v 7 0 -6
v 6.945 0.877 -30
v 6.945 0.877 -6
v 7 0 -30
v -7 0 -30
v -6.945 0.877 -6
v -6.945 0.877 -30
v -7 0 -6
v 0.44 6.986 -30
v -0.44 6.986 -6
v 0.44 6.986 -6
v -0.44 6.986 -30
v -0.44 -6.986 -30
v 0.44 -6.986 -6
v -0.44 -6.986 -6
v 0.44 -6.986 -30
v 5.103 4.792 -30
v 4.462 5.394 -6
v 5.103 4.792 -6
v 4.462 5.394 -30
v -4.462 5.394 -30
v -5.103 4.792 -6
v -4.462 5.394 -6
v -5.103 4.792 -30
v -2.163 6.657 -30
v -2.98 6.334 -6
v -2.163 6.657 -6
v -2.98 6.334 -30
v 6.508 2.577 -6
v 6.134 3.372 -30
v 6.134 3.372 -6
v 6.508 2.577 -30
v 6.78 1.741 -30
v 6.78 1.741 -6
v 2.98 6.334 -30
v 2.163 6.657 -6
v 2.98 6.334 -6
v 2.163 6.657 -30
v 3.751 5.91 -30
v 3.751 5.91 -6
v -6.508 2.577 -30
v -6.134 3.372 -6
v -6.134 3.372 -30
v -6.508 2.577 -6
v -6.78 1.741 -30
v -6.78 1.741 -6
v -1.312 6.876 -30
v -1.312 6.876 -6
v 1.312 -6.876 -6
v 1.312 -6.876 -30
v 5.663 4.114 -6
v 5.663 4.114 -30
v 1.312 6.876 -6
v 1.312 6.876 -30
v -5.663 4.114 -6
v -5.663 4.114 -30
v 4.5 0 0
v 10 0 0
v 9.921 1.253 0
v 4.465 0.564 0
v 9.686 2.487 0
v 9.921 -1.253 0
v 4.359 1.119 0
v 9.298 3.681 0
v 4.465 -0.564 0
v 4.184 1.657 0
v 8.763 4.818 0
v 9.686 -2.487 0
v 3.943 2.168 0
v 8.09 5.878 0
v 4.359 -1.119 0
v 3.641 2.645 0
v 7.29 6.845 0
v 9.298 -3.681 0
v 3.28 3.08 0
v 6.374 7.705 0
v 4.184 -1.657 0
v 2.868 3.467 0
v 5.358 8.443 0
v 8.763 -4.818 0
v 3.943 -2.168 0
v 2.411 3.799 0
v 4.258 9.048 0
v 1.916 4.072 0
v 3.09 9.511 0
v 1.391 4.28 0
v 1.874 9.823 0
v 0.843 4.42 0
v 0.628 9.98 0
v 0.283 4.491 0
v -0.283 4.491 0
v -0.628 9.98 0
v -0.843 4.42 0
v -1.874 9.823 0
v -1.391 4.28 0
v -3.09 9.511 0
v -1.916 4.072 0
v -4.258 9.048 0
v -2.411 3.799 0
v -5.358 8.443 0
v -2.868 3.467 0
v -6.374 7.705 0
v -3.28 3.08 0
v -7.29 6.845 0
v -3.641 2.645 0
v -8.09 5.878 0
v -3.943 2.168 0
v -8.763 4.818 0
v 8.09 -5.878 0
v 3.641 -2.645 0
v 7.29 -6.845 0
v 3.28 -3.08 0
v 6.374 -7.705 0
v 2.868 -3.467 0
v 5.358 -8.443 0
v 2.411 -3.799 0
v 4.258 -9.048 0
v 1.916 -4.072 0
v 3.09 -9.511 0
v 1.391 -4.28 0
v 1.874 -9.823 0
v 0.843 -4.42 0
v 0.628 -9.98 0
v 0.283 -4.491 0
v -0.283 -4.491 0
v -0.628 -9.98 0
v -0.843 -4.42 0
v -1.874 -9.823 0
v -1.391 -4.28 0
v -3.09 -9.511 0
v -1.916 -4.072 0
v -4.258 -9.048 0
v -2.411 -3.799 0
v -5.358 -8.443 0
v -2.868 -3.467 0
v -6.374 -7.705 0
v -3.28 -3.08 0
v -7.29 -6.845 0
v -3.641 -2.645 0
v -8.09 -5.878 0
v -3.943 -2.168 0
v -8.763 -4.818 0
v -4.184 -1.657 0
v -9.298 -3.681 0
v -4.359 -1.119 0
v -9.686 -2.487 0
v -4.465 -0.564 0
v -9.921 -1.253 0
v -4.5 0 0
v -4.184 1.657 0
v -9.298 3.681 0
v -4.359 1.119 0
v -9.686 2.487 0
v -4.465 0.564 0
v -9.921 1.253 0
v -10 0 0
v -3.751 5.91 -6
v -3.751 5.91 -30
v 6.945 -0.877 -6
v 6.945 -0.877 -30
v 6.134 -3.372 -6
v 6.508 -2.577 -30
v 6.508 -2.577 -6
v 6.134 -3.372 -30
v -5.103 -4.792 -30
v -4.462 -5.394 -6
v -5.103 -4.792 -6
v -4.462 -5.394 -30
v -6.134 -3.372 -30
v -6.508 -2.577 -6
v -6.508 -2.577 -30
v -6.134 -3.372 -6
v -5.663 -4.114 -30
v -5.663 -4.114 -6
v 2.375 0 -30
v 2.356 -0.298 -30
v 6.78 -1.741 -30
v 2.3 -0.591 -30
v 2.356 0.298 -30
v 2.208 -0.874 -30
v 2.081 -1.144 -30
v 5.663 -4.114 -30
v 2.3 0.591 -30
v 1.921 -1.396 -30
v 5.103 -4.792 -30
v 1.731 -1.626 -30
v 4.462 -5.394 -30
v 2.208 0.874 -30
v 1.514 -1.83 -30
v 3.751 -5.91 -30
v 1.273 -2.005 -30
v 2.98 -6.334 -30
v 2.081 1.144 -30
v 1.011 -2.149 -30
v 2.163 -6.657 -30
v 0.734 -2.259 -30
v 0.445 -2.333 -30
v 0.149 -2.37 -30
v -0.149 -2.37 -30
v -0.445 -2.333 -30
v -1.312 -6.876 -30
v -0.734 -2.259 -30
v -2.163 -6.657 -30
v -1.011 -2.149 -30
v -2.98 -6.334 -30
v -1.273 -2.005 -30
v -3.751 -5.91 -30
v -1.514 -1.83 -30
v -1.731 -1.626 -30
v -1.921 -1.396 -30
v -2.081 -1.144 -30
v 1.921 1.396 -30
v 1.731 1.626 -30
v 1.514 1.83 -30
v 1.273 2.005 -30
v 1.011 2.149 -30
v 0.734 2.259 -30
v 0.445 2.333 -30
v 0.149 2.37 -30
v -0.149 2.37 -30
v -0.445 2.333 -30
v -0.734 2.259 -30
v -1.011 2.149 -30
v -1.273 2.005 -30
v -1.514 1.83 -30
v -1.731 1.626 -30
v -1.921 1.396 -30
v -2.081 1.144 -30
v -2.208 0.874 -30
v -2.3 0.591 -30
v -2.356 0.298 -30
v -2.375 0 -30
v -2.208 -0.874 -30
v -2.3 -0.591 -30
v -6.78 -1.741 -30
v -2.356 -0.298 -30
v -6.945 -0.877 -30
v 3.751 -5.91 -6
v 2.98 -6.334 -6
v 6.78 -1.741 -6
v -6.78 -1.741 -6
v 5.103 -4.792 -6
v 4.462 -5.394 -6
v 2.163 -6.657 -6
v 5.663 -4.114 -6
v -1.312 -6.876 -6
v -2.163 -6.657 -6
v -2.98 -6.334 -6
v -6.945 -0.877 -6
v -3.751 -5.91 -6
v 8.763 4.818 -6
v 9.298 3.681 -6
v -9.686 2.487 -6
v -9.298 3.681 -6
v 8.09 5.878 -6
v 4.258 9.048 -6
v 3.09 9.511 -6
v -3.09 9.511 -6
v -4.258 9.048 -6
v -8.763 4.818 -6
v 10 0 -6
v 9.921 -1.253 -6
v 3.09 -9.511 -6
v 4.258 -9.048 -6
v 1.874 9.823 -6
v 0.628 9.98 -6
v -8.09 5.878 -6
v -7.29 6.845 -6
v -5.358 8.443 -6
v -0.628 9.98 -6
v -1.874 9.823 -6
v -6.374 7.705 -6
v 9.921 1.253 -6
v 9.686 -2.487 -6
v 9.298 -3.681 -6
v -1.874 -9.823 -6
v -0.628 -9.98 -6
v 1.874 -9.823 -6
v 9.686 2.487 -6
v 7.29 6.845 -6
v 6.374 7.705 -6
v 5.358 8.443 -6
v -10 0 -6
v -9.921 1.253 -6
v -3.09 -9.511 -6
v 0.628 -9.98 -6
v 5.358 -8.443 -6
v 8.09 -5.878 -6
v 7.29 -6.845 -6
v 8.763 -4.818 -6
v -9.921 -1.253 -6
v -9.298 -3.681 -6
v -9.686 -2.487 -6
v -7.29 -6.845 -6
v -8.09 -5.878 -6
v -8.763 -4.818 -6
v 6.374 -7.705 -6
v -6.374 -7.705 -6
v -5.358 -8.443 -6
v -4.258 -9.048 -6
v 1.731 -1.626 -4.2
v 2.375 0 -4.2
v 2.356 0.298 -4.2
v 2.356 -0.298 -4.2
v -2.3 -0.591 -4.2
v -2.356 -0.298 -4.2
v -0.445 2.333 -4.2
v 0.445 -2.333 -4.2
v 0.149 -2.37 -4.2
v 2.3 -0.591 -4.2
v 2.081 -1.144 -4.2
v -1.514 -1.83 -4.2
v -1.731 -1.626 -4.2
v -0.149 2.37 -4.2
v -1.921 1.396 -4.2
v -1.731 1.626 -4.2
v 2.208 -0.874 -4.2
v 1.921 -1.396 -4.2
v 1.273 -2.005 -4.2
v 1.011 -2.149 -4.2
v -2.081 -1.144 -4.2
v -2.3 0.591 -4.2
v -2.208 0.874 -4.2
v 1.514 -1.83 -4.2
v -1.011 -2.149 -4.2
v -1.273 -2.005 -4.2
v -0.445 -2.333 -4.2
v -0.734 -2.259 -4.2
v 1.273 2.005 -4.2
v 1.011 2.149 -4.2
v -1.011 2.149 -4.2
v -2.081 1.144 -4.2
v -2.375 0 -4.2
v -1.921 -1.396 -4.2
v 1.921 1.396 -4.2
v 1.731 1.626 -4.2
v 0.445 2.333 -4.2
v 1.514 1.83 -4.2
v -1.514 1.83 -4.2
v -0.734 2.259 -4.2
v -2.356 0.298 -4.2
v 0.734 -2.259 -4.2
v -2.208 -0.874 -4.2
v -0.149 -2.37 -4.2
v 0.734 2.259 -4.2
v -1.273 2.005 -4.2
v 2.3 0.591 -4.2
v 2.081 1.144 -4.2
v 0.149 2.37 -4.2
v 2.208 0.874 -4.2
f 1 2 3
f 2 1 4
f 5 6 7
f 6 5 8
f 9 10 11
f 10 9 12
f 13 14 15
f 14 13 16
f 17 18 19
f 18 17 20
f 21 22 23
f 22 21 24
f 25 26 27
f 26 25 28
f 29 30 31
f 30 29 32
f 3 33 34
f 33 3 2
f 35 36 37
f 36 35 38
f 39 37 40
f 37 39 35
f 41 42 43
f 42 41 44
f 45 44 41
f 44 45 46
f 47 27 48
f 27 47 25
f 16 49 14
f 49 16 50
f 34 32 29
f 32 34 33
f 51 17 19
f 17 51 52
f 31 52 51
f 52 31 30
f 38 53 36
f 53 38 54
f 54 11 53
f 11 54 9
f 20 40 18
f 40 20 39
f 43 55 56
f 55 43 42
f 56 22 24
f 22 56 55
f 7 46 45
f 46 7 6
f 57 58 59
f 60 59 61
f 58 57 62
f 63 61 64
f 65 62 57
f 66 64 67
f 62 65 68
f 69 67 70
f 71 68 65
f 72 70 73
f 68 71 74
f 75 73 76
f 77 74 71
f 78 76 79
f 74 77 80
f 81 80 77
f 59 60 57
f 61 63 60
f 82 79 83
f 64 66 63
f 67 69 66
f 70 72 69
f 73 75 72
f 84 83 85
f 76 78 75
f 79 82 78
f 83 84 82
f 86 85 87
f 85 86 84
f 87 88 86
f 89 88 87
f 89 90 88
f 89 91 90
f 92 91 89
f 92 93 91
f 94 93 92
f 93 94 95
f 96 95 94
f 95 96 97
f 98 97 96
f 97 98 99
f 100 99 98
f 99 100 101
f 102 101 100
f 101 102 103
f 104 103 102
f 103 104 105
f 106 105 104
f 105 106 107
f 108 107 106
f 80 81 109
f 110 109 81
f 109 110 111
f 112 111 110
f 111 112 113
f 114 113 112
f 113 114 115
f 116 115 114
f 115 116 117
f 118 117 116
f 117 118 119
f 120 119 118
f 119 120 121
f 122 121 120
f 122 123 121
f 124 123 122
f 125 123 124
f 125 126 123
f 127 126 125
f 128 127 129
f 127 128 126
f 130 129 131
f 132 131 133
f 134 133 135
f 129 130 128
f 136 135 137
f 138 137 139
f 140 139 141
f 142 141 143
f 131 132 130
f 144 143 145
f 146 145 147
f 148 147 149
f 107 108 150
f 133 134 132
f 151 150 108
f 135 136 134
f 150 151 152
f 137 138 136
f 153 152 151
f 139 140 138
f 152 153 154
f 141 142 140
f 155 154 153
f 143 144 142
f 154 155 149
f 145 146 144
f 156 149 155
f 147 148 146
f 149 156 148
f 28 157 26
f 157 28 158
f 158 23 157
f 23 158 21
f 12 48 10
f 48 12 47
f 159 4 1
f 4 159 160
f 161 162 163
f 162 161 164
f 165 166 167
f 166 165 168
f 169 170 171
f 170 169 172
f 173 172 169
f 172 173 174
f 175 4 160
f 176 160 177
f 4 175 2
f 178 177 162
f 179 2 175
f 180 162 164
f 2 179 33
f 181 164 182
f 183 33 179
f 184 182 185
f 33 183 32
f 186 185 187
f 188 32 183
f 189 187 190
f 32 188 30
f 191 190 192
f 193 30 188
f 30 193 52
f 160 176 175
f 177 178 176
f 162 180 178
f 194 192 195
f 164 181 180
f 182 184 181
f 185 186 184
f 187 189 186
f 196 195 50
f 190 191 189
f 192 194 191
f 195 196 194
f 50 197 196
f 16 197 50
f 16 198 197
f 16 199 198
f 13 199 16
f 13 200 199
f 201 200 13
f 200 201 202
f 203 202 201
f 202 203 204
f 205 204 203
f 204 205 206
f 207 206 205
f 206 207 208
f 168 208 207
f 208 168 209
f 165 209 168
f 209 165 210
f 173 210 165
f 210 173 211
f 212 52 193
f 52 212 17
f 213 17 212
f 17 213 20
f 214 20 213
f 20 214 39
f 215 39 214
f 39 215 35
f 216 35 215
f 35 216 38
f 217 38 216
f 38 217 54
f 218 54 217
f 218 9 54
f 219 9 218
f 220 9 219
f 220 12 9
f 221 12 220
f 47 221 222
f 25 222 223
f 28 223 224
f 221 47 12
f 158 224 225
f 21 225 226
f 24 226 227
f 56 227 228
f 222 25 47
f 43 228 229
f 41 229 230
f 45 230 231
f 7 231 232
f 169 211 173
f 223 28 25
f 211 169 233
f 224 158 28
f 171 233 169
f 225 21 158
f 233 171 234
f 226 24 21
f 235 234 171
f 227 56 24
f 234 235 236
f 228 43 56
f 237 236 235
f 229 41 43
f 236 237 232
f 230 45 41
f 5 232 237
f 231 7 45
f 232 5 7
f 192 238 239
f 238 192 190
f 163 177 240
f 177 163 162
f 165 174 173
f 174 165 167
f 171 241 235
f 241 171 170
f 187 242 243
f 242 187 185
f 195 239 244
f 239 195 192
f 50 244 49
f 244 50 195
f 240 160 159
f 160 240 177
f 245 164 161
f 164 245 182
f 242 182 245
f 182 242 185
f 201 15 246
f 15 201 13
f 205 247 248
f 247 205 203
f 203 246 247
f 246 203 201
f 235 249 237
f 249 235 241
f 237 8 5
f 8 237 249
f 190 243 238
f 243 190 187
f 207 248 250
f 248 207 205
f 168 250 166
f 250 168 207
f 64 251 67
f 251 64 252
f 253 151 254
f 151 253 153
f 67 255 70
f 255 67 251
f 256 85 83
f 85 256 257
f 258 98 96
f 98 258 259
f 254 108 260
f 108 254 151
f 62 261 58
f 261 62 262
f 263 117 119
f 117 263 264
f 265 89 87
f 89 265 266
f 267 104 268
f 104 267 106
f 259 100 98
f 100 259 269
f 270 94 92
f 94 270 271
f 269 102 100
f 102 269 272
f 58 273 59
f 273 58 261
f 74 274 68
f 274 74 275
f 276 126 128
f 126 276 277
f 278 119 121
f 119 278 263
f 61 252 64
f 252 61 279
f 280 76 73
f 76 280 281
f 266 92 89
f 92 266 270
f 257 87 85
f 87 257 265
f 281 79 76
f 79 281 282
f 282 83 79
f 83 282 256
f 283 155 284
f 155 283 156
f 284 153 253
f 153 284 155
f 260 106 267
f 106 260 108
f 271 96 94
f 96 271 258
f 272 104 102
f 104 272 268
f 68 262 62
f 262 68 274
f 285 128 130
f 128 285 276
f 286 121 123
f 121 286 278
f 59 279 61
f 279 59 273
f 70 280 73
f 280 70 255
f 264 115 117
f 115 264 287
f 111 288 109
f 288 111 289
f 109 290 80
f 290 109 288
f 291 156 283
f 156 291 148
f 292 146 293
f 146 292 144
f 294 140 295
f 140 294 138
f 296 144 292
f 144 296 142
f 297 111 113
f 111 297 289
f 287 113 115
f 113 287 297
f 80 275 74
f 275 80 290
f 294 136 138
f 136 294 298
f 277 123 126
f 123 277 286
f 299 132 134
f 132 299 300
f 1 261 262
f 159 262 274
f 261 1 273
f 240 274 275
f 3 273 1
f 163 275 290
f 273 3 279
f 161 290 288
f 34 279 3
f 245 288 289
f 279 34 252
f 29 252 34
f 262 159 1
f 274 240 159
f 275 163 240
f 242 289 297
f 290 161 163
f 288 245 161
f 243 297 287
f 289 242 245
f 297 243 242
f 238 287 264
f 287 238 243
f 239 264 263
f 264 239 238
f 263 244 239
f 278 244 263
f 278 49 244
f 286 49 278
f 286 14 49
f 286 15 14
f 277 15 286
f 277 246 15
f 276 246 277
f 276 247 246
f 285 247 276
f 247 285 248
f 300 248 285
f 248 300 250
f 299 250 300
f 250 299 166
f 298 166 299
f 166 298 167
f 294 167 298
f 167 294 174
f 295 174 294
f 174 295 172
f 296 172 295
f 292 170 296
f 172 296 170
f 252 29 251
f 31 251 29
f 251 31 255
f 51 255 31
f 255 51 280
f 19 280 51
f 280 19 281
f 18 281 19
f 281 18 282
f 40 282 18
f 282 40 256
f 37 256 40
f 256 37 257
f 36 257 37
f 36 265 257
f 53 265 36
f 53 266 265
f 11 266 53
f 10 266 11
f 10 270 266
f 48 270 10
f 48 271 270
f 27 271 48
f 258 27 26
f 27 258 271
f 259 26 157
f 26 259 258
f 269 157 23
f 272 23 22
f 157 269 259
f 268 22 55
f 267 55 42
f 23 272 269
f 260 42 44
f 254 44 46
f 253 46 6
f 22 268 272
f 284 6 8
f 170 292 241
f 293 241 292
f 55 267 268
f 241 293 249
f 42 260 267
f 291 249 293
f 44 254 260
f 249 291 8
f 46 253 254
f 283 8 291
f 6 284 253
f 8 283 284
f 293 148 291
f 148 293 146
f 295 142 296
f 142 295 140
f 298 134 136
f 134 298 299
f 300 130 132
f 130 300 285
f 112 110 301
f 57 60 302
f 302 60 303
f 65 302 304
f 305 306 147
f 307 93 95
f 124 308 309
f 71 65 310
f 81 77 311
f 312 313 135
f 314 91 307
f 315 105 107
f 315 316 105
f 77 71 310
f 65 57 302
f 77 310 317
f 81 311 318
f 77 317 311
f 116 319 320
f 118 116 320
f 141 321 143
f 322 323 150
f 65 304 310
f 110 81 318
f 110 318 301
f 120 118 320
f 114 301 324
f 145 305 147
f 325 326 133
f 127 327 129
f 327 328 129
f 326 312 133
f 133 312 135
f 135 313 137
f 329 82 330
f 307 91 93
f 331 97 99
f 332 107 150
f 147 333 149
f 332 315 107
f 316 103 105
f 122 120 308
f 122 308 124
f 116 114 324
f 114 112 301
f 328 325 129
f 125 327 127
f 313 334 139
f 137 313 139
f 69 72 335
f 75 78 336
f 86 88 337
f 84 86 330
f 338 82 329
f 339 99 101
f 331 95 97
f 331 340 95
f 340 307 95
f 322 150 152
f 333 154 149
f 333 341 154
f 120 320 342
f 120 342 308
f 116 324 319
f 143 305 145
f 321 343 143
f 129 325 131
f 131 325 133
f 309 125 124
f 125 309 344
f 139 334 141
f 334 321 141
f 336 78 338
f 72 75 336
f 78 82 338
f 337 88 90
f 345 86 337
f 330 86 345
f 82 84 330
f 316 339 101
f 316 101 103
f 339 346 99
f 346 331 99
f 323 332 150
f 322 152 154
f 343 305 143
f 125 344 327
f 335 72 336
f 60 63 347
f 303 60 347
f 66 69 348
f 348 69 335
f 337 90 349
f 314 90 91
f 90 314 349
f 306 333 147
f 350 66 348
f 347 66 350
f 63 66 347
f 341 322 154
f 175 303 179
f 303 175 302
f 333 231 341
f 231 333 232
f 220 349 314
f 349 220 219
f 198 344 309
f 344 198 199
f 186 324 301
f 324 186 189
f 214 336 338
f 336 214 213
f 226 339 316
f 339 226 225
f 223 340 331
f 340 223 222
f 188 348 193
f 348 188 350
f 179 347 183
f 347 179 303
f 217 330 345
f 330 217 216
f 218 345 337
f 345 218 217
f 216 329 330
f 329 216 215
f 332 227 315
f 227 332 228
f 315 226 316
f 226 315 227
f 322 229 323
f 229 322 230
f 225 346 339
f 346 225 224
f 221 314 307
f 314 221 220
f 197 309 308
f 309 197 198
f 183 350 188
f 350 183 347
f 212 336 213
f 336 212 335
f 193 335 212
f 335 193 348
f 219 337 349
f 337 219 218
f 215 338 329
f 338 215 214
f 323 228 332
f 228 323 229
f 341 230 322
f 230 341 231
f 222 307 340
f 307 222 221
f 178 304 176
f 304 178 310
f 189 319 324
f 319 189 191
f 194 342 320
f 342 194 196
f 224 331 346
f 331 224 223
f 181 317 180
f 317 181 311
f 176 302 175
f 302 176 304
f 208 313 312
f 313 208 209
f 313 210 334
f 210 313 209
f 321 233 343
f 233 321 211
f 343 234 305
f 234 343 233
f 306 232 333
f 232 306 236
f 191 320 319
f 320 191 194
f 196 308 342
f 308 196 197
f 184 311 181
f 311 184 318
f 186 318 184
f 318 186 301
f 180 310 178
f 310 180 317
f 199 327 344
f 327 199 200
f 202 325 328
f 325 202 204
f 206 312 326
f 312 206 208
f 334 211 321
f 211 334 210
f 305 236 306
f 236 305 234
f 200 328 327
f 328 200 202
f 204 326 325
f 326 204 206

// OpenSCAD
$fn = 50;


difference() {
	union() {
		translate(v = [0, 0, -30.0000000000]) {
			cylinder(h = 30, r = 7.0000000000);
		}
		translate(v = [0, 0, -6.0000000000]) {
			cylinder(h = 6, r = 10.0000000000);
		}
	}
	union() {
		translate(v = [0, 0, 0]) {
			rotate(a = [0, 0, 0]) {
				difference() {
					union() {
						#translate(v = [0, 0, -30.0000000000]) {
							cylinder(h = 30, r = 2.2500000000);
						}
						#translate(v = [0, 0, -4.2000000000]) {
							cylinder(h = 4.2000000000, r = 7.0000000000, r1 = 2.3750000000, r2 = 4.5000000000);
						}
						#translate(v = [0, 0, -30.0000000000]) {
							cylinder(h = 30, r = 2.3750000000);
						}
						#translate(v = [0, 0, -30.0000000000]) {
							cylinder(h = 30, r = 2.2500000000);
						}
					}
					union();
				}
			}
		}
	}
}
